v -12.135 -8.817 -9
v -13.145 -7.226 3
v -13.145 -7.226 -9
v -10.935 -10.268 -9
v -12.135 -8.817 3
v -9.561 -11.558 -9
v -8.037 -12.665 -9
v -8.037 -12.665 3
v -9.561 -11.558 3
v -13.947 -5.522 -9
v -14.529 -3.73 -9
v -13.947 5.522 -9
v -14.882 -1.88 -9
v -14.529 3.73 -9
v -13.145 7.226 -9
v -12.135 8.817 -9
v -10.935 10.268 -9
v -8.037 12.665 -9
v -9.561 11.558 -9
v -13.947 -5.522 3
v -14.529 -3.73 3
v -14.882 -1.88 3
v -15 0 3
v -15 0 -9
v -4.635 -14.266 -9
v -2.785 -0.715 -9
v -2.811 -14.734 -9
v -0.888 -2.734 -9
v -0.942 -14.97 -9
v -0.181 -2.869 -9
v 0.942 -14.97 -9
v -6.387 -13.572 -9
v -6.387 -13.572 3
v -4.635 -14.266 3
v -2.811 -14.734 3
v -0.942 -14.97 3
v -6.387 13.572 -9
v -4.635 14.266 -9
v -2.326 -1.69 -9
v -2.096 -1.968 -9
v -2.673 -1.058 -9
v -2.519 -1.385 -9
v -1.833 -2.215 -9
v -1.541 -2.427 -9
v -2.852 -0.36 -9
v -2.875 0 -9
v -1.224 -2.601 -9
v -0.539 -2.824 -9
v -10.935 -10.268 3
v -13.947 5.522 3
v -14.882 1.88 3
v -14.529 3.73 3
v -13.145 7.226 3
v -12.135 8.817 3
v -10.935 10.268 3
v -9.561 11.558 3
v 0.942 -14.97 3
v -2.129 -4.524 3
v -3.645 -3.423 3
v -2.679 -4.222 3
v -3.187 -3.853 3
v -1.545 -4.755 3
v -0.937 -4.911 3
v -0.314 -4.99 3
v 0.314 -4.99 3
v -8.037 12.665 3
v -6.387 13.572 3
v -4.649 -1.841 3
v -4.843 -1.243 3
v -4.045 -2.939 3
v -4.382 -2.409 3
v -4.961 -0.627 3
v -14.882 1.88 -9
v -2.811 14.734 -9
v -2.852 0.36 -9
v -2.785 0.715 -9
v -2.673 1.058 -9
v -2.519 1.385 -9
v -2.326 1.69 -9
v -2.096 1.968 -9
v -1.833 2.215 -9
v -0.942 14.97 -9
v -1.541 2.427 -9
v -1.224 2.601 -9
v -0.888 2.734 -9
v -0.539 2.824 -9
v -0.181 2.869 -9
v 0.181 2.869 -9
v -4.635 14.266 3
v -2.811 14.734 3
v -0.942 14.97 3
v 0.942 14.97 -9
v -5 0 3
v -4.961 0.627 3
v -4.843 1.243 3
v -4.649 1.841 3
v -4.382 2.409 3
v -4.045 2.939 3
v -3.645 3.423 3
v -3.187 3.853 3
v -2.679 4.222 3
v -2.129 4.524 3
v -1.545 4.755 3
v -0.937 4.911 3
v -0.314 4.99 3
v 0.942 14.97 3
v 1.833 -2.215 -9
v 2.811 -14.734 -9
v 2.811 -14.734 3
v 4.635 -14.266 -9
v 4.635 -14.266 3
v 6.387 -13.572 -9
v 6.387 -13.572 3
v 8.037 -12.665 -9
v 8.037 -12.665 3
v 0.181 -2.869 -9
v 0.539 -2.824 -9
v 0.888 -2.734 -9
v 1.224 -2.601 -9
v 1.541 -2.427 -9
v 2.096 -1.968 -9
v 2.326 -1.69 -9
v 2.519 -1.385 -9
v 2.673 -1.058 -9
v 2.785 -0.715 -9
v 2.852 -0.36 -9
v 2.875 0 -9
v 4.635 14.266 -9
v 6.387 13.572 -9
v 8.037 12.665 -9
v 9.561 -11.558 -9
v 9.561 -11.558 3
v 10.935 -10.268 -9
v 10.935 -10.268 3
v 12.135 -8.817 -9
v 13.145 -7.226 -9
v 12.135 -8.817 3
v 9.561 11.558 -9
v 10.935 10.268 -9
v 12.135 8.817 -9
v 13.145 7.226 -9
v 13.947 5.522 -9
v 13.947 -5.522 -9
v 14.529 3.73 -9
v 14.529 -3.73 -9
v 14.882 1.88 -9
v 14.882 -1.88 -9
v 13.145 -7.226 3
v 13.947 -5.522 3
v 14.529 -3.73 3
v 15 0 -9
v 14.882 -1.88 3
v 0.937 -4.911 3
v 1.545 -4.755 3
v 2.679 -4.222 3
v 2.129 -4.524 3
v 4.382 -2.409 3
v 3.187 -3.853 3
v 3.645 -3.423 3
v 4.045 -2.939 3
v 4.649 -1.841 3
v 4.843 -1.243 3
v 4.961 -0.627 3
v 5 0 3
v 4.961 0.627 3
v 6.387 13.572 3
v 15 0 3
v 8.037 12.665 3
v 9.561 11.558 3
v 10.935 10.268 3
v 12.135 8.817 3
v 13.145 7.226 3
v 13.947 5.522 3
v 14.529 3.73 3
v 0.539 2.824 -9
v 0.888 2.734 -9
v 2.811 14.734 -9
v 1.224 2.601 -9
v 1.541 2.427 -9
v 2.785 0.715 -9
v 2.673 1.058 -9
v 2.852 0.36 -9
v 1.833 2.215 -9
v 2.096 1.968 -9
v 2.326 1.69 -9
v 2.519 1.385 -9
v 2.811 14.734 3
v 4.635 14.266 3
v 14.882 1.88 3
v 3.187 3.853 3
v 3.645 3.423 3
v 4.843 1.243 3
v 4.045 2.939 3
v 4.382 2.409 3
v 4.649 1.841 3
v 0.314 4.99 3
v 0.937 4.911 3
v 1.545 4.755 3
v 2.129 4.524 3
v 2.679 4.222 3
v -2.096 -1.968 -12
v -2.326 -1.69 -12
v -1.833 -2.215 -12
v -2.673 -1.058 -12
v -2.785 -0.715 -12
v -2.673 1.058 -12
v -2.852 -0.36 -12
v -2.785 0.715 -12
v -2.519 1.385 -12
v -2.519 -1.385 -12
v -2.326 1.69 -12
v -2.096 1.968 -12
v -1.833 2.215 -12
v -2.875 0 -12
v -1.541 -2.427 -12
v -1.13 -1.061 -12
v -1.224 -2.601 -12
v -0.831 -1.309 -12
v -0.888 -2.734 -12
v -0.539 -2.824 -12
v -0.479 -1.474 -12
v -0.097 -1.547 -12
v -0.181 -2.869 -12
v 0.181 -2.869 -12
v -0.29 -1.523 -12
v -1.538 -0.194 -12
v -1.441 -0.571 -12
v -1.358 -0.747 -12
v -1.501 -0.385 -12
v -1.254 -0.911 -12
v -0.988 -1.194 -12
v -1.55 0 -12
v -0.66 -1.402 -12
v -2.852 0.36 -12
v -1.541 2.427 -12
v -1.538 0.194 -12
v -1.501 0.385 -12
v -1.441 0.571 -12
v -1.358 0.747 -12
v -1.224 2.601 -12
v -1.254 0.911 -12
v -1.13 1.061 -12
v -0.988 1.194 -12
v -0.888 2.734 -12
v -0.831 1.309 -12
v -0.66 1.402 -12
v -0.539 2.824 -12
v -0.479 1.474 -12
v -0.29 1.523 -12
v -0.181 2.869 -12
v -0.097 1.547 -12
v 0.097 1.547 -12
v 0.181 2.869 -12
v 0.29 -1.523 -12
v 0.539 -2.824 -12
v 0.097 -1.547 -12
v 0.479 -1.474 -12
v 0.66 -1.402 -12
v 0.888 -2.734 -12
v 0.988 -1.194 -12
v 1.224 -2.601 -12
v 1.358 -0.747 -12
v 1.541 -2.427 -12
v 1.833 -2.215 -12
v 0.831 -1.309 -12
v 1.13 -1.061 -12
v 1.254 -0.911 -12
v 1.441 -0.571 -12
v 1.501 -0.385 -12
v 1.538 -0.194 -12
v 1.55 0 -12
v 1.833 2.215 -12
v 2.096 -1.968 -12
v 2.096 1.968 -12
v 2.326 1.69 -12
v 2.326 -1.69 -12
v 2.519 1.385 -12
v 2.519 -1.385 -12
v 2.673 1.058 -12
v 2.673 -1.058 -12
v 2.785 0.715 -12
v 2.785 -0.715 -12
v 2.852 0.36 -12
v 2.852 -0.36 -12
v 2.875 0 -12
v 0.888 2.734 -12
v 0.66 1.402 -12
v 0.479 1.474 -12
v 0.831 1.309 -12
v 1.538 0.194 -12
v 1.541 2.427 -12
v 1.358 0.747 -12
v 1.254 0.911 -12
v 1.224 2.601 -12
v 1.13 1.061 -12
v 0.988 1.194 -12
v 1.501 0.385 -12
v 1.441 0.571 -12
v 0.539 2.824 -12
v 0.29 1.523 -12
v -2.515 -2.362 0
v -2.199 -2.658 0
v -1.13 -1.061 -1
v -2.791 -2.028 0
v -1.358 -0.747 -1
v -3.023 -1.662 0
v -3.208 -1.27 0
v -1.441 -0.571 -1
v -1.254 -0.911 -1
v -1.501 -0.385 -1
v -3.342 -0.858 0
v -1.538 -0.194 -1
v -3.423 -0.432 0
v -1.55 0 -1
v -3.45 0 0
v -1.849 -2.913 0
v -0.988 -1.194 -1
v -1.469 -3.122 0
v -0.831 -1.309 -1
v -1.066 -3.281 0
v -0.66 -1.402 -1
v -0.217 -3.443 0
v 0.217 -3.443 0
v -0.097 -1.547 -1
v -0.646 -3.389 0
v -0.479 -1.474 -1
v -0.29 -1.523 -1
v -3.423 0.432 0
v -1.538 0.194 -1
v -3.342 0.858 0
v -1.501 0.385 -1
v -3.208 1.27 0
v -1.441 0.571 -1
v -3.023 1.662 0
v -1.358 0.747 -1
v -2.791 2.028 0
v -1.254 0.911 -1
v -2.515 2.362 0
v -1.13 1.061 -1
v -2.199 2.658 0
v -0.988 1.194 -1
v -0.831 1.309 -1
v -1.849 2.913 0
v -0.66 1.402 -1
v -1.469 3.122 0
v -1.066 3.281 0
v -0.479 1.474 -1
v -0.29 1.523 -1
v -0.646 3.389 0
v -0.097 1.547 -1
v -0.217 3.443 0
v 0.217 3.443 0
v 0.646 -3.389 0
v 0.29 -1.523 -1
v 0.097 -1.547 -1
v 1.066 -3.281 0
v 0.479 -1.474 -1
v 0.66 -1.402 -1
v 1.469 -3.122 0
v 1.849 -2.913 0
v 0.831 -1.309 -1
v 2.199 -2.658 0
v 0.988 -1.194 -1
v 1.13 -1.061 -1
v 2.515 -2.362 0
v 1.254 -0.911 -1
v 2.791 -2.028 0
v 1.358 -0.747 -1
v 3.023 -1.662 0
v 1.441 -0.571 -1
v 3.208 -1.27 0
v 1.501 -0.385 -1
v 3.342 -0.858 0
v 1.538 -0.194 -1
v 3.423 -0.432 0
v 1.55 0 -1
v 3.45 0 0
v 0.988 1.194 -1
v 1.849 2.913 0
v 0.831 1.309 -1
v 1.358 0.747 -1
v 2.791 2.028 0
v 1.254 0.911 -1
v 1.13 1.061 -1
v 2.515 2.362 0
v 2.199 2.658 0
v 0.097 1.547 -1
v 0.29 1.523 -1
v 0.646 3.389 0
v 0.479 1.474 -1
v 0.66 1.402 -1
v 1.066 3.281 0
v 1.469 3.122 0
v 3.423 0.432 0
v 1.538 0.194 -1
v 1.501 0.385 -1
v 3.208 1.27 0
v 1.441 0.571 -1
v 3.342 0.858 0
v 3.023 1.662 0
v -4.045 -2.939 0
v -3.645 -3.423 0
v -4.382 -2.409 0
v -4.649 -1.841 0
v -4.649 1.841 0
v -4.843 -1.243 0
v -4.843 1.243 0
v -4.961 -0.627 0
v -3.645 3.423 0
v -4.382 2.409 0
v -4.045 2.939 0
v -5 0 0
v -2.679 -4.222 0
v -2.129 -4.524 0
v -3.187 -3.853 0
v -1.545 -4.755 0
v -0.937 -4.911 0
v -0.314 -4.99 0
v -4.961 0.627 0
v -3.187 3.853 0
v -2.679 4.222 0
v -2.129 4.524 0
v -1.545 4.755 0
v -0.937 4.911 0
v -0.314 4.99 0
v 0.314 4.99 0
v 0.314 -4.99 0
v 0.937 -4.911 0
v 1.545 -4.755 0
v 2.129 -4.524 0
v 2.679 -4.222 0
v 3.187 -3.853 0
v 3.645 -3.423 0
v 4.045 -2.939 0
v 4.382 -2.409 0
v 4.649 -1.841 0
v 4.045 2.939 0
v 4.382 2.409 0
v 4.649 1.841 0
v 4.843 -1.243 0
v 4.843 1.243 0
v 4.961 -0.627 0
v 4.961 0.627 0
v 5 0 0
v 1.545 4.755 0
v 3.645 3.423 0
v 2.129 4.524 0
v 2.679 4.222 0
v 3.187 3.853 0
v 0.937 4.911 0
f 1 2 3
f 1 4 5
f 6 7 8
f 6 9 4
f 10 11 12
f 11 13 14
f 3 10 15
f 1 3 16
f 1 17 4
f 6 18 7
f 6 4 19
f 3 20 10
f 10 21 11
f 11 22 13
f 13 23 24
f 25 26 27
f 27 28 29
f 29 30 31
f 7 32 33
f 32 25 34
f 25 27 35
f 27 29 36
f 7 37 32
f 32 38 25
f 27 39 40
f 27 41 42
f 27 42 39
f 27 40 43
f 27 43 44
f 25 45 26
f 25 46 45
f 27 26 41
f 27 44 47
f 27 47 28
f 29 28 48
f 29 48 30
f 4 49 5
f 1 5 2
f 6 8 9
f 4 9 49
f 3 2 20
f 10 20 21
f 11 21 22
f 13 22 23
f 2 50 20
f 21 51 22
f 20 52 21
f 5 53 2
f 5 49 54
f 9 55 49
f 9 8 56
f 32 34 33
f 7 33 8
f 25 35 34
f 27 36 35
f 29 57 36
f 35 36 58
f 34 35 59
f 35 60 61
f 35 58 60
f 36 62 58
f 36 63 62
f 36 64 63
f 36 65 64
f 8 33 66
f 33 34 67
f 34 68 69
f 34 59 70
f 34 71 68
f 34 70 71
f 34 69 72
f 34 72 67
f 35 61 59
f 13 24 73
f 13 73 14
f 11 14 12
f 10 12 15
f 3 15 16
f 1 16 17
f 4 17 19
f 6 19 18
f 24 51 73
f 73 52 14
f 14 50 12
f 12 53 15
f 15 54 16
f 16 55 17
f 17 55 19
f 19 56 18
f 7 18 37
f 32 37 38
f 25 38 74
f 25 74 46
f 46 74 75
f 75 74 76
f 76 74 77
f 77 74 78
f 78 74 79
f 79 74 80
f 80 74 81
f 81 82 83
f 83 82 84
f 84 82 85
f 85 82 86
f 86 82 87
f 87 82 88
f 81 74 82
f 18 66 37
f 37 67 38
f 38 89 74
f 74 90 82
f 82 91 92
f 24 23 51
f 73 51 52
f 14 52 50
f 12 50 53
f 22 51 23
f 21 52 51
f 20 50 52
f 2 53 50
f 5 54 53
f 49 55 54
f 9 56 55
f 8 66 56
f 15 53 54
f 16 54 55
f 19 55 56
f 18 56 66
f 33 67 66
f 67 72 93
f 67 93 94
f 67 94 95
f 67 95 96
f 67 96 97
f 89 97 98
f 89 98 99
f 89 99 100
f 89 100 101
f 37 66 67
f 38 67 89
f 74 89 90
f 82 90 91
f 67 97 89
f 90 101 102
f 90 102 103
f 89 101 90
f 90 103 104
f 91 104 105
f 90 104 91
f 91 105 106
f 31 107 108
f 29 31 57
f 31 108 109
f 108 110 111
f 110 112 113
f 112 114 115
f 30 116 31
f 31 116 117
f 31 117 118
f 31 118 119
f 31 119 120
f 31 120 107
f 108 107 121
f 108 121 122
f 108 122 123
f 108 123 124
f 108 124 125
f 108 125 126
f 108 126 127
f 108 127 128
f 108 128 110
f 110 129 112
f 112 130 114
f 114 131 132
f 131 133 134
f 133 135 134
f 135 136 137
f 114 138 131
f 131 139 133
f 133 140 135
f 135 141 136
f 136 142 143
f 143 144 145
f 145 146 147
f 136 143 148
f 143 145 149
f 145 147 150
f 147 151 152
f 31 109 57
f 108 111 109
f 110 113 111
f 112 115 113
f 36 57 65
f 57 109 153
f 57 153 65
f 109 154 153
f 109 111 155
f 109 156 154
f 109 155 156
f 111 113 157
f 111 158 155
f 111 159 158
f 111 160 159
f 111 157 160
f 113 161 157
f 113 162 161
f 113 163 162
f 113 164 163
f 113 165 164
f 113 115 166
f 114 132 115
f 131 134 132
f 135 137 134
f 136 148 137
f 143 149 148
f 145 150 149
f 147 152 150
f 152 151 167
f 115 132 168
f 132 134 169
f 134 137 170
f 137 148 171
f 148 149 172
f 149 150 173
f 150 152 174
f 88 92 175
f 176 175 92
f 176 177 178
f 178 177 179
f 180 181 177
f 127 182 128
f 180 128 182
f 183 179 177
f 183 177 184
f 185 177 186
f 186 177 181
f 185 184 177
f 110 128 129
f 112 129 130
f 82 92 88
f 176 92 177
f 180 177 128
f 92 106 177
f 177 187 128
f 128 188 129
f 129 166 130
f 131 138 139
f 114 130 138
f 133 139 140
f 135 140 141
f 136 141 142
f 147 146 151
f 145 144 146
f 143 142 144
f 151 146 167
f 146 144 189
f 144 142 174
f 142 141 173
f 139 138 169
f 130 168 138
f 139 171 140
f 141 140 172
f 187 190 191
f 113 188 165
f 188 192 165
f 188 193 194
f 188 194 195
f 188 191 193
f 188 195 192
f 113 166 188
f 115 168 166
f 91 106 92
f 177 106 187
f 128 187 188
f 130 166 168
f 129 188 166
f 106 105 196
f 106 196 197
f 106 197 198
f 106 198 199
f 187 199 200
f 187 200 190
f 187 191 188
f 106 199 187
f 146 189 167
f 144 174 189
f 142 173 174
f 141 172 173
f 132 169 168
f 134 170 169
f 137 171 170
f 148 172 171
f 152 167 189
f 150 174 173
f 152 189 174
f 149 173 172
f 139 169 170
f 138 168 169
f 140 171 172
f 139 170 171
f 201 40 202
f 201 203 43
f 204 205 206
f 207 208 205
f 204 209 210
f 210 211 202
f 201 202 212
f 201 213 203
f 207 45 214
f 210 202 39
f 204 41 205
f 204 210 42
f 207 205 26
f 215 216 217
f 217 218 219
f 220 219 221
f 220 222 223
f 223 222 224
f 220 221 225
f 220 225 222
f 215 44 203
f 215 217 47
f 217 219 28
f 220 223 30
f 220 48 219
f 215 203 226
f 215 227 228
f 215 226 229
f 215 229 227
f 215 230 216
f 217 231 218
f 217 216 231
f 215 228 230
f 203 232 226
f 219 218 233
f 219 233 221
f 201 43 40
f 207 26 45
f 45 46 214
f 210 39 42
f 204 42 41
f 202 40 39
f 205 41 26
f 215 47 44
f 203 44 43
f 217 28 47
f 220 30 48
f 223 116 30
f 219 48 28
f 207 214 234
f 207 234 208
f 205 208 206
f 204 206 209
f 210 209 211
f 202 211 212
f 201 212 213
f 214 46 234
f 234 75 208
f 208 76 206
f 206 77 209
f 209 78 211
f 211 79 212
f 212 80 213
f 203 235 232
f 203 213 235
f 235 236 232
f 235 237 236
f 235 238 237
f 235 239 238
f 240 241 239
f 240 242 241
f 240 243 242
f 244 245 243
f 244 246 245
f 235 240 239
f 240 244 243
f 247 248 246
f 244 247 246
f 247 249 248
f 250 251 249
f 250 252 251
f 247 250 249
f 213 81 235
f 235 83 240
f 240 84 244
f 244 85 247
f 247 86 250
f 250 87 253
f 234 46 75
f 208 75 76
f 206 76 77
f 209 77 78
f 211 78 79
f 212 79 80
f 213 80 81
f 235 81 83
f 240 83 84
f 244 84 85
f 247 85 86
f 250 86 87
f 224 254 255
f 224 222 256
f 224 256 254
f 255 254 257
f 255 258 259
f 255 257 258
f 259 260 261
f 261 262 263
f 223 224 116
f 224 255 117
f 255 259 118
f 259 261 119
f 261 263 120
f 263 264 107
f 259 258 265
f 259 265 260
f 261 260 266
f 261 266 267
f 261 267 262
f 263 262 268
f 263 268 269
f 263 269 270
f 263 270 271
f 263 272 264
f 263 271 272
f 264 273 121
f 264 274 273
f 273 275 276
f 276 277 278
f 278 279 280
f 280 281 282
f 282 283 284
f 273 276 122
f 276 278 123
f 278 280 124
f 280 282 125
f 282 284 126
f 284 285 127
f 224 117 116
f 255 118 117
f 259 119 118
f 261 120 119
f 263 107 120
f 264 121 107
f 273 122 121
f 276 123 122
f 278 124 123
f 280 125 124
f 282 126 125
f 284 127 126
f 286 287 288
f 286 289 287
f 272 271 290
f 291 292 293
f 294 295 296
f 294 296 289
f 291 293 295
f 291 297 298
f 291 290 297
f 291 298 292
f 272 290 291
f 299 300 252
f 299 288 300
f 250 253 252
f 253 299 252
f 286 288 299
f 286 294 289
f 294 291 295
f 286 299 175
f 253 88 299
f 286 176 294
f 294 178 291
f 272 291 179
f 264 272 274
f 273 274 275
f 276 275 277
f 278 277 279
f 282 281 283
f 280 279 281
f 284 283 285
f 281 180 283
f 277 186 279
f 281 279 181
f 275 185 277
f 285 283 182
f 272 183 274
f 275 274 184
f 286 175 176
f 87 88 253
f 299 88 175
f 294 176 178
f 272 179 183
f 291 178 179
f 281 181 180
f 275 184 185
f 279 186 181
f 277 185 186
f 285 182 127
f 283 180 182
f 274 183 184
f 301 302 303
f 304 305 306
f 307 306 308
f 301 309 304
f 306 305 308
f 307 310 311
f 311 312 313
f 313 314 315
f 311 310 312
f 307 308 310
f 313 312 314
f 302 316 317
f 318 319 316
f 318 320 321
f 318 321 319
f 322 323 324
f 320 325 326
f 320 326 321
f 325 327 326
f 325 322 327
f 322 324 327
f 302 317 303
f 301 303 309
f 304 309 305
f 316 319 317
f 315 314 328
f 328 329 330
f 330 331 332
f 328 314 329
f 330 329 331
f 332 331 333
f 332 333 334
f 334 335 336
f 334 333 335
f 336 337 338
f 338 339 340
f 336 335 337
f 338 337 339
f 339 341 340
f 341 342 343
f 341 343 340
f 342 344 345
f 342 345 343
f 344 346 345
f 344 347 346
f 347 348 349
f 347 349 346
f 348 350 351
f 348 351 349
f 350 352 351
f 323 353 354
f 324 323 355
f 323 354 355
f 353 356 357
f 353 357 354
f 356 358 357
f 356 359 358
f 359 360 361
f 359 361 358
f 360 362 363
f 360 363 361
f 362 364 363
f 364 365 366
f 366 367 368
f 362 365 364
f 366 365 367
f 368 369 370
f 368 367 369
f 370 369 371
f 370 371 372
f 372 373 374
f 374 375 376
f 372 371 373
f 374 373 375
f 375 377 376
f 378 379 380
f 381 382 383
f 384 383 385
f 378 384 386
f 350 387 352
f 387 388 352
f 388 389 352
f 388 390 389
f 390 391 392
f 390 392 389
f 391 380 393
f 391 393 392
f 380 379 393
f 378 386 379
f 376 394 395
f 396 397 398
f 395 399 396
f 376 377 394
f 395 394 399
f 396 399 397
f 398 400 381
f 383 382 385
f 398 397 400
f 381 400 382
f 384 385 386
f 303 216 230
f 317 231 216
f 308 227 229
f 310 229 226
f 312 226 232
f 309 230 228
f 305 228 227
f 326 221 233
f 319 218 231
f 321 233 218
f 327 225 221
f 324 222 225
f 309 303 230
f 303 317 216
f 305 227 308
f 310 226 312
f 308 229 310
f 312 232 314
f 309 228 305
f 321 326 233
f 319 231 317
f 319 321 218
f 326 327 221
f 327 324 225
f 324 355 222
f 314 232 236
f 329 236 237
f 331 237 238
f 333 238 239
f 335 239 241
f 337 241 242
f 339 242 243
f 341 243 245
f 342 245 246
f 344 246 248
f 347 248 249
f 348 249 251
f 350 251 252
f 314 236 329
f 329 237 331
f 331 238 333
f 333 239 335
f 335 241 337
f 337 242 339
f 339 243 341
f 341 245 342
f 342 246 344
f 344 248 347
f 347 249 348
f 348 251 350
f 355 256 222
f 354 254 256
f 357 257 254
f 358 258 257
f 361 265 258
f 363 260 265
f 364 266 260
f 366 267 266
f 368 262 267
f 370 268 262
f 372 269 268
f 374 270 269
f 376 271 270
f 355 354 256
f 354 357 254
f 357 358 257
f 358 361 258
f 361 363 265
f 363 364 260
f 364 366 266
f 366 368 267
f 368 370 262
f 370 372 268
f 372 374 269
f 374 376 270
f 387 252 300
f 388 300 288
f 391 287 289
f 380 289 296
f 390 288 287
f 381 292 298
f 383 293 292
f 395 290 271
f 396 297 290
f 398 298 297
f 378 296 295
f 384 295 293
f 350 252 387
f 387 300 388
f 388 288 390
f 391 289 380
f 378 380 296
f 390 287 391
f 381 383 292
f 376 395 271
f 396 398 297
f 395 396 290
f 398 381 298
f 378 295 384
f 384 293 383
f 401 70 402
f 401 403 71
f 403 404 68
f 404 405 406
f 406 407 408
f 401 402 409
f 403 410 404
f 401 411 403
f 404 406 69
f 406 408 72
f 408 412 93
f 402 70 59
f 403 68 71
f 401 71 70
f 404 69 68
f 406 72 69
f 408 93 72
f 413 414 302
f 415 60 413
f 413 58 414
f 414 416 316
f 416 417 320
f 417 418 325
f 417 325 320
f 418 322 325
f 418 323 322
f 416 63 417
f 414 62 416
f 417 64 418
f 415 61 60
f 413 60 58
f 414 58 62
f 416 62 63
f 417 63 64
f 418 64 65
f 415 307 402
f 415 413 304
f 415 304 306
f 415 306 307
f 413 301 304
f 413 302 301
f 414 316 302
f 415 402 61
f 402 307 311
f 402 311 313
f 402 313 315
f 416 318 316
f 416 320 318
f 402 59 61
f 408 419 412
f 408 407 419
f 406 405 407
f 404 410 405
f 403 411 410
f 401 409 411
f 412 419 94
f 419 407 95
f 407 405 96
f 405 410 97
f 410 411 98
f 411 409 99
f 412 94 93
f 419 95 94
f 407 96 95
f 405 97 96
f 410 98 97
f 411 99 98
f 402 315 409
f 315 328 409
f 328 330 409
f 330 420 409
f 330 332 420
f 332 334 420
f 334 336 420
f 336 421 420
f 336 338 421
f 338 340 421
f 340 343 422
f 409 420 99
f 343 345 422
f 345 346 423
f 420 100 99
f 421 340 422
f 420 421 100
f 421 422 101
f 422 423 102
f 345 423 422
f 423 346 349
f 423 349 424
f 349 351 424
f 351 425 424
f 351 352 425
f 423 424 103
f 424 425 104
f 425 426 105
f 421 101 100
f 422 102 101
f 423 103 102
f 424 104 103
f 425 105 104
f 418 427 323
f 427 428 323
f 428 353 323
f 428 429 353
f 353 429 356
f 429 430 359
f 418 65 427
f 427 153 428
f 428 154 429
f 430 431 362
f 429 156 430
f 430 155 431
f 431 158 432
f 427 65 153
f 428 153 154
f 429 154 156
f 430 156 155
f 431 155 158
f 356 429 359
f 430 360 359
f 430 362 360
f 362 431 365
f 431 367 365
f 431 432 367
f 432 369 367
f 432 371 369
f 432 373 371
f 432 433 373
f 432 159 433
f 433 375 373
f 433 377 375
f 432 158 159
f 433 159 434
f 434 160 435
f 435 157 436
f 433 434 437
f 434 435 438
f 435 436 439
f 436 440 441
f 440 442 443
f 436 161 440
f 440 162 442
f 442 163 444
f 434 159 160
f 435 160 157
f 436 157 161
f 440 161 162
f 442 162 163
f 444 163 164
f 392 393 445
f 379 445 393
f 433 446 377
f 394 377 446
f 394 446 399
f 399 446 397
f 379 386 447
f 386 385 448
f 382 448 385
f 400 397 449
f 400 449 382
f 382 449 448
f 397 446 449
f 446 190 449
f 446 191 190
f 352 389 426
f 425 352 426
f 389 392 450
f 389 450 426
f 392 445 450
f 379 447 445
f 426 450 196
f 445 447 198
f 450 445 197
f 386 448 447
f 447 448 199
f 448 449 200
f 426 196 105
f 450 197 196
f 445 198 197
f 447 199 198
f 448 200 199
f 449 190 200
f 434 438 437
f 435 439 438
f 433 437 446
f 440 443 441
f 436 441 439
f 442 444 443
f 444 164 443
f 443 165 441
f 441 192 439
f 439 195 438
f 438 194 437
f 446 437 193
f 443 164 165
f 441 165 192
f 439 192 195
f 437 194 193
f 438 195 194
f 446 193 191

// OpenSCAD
$fn = 50;

difference() {
	union() {
		translate(v = [0, 0, -9.0]) {
			cylinder(h = 12, r = 15.0);
		}
		#translate(v = [0, 0, -12.0]) {
			cylinder(h = 12, r = 2.875);
		}
	}
	union() {
		translate(v = [0, 0, 0]) {
			rotate(a = [0, 0, 0]) {
				difference() {
					union() {
						translate(v = [0, 0, -12.0]) {
							cylinder(h = 12, r = 1.25);
						}
						translate(v = [0, 0, -1.0]) {
							cylinder(h = 1.0, r1 = 1.55, r2 = 3.45);
						}
						translate(v = [0, 0, -12.0]) {
							cylinder(h = 12, r = 1.55);
						}
						translate(v = [0, 0, -12.0]) {
							cylinder(h = 12, r = 1.25);
						}
					}
					union();
				}
			}
		}
		#cylinder(h = 3, r = 5.0);
	}
}
